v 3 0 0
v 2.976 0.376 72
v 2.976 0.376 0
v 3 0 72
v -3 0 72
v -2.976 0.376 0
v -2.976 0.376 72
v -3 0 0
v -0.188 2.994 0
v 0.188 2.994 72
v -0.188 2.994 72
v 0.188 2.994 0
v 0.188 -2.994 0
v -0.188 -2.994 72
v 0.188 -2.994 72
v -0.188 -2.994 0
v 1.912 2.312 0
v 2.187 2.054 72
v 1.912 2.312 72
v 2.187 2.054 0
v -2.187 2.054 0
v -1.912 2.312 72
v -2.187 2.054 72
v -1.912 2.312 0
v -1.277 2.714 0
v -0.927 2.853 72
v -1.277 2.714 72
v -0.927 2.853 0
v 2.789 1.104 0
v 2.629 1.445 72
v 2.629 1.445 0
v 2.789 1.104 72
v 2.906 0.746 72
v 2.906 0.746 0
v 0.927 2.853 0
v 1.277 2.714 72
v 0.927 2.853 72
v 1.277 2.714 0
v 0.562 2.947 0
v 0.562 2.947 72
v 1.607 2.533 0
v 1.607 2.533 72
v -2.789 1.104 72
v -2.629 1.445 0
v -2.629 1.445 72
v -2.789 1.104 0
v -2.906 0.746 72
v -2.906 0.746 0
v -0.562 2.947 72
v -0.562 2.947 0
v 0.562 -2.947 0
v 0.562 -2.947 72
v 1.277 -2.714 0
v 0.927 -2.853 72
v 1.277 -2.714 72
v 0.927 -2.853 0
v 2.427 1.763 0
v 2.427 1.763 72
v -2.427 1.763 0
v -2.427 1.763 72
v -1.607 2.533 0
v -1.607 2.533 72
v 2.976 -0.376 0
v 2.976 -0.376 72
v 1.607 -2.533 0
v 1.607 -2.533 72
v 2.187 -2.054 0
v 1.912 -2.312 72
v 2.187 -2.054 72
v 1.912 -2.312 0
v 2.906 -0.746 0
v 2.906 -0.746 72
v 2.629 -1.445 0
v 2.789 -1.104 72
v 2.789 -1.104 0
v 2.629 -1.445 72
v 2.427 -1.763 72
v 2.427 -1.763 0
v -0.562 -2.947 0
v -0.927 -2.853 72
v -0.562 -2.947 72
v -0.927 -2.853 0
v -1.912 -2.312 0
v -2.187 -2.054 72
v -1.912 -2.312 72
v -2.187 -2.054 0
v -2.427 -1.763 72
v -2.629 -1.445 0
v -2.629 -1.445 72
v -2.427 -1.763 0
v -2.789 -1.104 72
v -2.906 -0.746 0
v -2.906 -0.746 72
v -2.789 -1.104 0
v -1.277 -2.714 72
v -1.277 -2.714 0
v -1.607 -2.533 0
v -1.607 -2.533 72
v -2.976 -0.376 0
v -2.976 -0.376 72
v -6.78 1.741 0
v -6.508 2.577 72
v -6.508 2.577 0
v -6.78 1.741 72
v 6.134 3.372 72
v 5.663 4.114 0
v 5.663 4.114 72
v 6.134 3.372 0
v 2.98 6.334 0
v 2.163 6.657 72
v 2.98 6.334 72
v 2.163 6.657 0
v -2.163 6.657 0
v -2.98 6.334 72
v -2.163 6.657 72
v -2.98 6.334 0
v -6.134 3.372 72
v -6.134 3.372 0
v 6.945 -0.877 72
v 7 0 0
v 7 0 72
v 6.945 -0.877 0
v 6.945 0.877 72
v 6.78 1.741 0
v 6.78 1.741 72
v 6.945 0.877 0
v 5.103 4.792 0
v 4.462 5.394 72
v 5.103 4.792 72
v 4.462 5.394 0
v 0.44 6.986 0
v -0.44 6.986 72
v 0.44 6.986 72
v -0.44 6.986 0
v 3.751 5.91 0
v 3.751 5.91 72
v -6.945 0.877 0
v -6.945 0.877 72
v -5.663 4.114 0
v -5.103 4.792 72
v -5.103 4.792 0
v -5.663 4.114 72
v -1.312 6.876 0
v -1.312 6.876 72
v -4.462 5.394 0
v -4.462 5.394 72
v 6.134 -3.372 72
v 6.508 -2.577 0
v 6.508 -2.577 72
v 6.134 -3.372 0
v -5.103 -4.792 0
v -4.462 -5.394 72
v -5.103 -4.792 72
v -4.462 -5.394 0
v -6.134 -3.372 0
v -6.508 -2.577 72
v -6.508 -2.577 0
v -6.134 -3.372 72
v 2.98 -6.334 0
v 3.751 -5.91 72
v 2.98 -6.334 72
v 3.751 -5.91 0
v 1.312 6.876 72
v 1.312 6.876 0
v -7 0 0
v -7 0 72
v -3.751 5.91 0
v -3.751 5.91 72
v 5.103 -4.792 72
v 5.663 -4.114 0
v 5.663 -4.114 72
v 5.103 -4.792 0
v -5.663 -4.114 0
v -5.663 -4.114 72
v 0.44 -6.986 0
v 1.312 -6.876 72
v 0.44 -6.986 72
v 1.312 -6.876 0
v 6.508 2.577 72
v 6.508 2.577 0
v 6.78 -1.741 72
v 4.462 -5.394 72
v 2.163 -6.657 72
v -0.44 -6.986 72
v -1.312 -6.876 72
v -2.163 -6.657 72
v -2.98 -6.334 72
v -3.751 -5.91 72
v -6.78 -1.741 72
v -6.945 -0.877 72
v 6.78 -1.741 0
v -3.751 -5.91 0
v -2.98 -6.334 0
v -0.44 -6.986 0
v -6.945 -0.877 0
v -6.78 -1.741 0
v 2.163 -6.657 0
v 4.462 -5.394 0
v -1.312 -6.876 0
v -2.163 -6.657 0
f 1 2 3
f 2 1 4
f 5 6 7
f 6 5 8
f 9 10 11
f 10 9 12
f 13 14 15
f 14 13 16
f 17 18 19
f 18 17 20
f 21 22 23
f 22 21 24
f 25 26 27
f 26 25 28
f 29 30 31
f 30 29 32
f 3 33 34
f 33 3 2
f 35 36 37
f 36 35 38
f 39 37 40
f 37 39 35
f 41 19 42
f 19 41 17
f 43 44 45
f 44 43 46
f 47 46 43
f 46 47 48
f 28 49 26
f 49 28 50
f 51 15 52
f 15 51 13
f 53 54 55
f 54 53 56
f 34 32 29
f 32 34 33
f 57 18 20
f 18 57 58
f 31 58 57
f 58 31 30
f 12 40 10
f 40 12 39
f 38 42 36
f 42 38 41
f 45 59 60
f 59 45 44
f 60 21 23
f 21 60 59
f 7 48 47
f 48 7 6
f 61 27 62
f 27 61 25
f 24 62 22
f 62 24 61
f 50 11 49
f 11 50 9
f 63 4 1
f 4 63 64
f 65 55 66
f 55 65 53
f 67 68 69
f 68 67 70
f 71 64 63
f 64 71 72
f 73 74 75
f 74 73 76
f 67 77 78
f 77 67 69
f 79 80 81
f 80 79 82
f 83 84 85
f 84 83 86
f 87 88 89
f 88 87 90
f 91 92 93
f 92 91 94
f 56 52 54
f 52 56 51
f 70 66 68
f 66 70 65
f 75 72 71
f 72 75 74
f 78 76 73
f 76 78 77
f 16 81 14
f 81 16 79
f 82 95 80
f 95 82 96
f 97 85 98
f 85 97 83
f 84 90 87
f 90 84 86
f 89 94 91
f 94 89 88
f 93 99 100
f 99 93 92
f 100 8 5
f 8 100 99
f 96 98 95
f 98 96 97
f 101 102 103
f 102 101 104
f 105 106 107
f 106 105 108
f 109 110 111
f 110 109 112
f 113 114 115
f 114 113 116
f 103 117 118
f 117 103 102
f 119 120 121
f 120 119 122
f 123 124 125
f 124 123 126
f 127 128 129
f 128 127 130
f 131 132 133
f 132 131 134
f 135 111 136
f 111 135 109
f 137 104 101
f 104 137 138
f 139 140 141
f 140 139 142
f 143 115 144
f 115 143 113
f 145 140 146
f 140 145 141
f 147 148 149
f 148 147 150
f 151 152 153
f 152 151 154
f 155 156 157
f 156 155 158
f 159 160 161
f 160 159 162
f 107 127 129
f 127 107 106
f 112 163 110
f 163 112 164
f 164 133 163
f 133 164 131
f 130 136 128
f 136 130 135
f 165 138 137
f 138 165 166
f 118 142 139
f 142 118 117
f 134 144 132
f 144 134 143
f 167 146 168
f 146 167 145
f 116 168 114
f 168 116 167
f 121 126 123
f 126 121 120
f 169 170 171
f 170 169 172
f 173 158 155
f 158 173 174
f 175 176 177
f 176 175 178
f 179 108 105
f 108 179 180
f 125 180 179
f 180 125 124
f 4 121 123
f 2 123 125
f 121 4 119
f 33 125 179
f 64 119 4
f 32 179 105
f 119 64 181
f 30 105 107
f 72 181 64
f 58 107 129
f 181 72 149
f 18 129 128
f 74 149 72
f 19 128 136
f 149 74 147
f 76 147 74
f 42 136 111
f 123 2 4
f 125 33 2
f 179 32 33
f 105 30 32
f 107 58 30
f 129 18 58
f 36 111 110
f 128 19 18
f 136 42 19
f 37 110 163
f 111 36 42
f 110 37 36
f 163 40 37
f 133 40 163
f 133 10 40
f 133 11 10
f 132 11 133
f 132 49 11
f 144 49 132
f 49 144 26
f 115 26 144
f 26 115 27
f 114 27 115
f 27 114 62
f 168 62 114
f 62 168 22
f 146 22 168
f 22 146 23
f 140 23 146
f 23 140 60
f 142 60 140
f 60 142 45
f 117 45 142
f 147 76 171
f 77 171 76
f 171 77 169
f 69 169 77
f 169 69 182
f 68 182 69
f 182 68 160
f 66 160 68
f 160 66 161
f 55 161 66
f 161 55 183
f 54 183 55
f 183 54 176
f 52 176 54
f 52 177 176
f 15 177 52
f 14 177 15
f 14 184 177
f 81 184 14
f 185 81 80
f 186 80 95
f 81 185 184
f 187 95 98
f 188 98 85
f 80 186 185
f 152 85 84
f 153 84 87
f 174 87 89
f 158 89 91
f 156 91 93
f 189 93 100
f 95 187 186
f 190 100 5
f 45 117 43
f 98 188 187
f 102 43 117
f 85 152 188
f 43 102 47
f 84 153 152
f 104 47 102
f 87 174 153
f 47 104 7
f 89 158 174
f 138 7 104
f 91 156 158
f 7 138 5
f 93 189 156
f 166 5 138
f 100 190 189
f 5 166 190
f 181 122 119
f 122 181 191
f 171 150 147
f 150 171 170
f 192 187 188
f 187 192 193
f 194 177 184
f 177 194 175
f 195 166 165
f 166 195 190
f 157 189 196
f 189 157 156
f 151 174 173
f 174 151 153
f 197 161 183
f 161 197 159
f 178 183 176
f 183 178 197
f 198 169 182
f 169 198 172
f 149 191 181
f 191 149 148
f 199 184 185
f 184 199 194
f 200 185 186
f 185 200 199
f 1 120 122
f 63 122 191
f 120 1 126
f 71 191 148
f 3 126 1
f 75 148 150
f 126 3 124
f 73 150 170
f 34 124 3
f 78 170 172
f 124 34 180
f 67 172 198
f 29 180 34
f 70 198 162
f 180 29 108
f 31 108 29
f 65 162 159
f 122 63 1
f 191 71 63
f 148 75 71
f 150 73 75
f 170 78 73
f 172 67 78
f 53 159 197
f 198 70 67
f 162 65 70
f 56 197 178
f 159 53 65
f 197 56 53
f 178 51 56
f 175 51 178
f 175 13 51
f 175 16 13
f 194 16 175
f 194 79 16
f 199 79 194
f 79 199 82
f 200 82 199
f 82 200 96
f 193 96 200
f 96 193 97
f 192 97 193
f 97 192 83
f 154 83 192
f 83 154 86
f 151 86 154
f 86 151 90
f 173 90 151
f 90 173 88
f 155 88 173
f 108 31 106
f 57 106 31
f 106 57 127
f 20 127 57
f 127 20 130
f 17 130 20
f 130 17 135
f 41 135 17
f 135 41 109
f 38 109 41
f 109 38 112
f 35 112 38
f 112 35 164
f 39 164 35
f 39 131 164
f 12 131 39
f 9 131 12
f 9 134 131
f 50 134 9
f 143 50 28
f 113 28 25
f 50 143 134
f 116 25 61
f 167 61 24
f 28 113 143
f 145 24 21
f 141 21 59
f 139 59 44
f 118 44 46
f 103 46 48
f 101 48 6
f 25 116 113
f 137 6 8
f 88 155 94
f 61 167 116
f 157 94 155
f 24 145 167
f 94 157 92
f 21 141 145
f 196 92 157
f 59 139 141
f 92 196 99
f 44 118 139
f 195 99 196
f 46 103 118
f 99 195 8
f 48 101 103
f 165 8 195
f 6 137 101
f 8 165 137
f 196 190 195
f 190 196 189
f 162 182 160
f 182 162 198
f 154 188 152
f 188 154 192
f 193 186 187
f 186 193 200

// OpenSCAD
$fn = 50;


difference() {
	union() {
		cylinder(h = 72, r = 7.0000000000);
	}
	union() {
		translate(v = [0.0000000000, 0.0000000000, -100.0000000000]) {
			cylinder(h = 200, r = 3.0000000000);
		}
		translate(v = [0.0000000000, 0.0000000000, -100.0000000000]) {
			cylinder(h = 200, r = 3.0000000000);
		}
		translate(v = [0.0000000000, 0.0000000000, -100.0000000000]) {
			cylinder(h = 200, r = 3.0000000000);
		}
		translate(v = [0.0000000000, 0.0000000000, -100.0000000000]) {
			cylinder(h = 200, r = 3.0000000000);
		}
	}
}
